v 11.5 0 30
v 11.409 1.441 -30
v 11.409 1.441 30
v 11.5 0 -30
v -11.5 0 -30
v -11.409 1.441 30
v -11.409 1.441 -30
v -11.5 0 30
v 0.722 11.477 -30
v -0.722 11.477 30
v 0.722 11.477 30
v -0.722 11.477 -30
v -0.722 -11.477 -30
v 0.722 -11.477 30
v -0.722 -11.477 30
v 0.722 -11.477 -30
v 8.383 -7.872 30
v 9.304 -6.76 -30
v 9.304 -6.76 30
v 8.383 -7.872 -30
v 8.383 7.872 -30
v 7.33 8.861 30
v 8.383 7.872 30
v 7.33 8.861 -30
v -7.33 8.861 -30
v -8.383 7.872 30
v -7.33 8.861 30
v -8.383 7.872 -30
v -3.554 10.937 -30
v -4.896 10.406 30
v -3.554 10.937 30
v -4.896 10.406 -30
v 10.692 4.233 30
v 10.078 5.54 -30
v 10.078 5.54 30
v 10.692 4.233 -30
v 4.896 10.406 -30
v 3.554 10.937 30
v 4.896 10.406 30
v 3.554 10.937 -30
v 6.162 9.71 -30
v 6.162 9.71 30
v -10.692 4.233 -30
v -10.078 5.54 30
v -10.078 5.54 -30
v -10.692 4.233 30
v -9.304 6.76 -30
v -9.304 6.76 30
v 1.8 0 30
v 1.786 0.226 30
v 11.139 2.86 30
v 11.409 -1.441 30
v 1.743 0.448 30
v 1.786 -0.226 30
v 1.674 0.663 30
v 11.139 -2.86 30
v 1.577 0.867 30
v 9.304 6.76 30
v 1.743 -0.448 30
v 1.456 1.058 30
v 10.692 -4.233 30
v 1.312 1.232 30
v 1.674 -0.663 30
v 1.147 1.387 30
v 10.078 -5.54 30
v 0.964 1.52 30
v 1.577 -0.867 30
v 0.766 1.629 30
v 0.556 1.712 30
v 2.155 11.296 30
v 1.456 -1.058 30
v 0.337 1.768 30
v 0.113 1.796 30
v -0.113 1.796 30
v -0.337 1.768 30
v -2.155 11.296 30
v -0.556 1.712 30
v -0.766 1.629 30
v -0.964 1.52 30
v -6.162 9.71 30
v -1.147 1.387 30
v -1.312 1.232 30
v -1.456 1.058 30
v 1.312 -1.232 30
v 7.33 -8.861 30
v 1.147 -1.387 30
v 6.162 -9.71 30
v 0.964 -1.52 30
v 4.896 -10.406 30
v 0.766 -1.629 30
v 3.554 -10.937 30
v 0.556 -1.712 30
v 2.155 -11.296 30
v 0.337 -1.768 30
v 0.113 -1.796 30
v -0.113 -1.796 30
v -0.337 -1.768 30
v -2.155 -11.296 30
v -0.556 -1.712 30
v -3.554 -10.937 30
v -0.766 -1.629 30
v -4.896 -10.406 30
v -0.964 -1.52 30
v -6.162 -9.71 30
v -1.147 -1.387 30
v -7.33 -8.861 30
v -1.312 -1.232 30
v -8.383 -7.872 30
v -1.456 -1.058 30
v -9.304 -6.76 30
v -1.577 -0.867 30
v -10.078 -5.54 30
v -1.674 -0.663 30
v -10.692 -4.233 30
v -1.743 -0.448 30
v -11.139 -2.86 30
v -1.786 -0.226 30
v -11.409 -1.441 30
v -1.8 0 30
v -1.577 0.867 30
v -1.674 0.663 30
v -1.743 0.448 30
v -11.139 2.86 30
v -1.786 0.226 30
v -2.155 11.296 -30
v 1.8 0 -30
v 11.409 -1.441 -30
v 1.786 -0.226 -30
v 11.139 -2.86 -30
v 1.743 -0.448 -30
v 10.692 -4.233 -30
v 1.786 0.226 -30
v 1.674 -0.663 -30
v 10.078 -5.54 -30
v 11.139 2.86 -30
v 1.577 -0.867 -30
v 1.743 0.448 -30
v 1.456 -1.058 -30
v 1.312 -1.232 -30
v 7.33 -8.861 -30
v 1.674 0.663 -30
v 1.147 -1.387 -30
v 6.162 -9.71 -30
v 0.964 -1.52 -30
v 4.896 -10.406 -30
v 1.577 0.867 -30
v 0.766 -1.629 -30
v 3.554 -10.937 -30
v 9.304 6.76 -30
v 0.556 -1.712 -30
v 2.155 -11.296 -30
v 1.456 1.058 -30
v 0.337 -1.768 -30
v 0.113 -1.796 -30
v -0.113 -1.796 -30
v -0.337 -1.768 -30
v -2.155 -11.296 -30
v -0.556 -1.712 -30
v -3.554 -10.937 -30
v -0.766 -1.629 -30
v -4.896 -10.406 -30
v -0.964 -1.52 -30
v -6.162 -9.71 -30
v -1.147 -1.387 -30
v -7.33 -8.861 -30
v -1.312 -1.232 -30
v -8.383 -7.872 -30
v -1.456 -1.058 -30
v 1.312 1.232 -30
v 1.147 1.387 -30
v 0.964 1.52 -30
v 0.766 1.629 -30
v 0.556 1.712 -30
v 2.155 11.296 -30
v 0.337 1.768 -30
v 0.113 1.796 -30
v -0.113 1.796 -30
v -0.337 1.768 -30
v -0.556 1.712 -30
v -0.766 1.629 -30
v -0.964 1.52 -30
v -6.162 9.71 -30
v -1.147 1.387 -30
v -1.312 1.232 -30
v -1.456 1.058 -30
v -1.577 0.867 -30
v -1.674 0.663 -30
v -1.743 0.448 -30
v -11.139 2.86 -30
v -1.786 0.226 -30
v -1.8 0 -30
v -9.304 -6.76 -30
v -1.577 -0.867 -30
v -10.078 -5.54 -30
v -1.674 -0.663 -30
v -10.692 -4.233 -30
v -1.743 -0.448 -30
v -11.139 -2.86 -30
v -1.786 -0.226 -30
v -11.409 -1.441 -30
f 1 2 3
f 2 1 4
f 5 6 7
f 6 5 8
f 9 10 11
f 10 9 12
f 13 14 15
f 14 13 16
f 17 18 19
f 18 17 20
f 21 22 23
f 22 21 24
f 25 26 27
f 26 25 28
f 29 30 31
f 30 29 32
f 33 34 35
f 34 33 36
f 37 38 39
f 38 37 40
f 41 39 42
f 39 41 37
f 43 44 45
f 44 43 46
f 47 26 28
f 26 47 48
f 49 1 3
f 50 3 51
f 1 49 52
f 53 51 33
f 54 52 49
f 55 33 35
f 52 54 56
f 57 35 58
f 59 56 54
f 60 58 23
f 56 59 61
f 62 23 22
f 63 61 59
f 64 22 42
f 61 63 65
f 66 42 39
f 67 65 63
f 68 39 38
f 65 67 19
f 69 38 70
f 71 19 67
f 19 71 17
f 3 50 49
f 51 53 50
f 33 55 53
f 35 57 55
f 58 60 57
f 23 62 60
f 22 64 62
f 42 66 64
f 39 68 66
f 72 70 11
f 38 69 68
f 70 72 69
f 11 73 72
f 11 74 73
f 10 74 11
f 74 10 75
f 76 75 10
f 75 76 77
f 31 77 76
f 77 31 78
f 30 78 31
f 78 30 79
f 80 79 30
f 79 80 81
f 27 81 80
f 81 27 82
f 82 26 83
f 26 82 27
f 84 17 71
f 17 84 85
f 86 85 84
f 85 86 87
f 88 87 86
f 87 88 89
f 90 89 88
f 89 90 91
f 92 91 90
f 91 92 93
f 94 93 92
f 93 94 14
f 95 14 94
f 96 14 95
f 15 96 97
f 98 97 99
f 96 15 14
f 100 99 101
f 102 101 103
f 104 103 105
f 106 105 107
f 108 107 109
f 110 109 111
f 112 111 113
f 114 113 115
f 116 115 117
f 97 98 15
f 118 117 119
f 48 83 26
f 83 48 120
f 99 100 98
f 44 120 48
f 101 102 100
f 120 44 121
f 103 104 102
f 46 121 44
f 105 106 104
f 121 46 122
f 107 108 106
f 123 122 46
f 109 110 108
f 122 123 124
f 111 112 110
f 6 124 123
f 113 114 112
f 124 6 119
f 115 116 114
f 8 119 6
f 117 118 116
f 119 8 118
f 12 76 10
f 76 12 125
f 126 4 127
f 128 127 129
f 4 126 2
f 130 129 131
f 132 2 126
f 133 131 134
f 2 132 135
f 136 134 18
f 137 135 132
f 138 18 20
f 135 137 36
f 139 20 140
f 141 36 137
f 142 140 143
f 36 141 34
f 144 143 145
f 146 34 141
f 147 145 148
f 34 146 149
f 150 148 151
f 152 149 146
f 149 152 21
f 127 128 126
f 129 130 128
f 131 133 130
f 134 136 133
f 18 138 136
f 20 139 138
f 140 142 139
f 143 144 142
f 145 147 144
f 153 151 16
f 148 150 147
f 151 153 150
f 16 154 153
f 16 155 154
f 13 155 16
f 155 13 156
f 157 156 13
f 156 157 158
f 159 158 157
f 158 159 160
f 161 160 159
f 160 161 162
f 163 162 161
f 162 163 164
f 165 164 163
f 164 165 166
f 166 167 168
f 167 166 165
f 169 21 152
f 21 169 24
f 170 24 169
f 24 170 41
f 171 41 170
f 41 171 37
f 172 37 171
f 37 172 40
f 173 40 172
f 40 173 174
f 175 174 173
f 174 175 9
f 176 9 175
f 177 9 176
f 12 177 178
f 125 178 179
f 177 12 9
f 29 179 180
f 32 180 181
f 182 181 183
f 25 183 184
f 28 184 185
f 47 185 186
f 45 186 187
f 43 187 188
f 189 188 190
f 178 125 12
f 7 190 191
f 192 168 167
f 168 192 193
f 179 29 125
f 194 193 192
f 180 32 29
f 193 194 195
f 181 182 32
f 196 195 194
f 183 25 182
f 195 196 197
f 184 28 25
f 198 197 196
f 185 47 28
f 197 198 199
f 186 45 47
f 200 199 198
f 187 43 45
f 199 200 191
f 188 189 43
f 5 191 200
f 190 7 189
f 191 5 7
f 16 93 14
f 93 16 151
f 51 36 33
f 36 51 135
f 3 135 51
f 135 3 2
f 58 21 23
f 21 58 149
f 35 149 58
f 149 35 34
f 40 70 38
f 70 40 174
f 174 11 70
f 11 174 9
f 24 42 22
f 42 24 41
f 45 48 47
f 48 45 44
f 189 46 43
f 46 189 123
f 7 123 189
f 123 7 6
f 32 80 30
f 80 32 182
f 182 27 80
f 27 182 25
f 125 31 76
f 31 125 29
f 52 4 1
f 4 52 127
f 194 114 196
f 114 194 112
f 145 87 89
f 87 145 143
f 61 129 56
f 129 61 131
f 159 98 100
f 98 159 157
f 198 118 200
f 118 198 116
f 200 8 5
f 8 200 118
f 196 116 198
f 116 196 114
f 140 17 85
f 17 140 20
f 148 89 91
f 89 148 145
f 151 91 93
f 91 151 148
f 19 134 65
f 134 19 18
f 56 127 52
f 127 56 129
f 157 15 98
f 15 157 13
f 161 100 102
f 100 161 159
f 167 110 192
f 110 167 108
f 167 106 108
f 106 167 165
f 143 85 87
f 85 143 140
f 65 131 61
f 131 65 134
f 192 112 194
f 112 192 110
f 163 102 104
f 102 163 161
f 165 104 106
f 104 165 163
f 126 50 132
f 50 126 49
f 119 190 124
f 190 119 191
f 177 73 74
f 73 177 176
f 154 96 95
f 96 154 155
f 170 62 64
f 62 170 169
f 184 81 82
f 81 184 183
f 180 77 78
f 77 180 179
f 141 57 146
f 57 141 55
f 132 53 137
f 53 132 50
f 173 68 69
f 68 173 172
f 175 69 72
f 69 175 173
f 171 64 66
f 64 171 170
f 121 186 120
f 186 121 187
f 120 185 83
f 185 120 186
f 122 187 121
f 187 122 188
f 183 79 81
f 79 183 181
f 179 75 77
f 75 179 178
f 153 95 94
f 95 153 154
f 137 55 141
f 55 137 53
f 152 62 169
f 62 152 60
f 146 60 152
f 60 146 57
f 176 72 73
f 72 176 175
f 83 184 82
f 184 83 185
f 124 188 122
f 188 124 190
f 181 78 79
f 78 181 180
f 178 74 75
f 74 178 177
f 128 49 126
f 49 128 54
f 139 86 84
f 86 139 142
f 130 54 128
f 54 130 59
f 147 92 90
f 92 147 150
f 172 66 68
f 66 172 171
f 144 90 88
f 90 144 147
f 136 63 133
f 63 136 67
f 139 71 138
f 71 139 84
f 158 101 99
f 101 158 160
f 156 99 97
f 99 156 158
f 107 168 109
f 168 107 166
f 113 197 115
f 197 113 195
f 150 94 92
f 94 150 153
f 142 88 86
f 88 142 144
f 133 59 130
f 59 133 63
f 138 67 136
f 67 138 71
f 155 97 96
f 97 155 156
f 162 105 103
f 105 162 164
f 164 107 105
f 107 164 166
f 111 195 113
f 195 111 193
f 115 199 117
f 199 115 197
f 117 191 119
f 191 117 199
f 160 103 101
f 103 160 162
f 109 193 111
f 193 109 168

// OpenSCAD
$fn = 50;


difference() {
	union() {
		translate(v = [0, 0, -30.0000000000]) {
			cylinder(h = 60, r = 11.5000000000);
		}
	}
	union() {
		translate(v = [0, 0, -100.0000000000]) {
			cylinder(h = 200, r = 1.8000000000);
		}
	}
}
